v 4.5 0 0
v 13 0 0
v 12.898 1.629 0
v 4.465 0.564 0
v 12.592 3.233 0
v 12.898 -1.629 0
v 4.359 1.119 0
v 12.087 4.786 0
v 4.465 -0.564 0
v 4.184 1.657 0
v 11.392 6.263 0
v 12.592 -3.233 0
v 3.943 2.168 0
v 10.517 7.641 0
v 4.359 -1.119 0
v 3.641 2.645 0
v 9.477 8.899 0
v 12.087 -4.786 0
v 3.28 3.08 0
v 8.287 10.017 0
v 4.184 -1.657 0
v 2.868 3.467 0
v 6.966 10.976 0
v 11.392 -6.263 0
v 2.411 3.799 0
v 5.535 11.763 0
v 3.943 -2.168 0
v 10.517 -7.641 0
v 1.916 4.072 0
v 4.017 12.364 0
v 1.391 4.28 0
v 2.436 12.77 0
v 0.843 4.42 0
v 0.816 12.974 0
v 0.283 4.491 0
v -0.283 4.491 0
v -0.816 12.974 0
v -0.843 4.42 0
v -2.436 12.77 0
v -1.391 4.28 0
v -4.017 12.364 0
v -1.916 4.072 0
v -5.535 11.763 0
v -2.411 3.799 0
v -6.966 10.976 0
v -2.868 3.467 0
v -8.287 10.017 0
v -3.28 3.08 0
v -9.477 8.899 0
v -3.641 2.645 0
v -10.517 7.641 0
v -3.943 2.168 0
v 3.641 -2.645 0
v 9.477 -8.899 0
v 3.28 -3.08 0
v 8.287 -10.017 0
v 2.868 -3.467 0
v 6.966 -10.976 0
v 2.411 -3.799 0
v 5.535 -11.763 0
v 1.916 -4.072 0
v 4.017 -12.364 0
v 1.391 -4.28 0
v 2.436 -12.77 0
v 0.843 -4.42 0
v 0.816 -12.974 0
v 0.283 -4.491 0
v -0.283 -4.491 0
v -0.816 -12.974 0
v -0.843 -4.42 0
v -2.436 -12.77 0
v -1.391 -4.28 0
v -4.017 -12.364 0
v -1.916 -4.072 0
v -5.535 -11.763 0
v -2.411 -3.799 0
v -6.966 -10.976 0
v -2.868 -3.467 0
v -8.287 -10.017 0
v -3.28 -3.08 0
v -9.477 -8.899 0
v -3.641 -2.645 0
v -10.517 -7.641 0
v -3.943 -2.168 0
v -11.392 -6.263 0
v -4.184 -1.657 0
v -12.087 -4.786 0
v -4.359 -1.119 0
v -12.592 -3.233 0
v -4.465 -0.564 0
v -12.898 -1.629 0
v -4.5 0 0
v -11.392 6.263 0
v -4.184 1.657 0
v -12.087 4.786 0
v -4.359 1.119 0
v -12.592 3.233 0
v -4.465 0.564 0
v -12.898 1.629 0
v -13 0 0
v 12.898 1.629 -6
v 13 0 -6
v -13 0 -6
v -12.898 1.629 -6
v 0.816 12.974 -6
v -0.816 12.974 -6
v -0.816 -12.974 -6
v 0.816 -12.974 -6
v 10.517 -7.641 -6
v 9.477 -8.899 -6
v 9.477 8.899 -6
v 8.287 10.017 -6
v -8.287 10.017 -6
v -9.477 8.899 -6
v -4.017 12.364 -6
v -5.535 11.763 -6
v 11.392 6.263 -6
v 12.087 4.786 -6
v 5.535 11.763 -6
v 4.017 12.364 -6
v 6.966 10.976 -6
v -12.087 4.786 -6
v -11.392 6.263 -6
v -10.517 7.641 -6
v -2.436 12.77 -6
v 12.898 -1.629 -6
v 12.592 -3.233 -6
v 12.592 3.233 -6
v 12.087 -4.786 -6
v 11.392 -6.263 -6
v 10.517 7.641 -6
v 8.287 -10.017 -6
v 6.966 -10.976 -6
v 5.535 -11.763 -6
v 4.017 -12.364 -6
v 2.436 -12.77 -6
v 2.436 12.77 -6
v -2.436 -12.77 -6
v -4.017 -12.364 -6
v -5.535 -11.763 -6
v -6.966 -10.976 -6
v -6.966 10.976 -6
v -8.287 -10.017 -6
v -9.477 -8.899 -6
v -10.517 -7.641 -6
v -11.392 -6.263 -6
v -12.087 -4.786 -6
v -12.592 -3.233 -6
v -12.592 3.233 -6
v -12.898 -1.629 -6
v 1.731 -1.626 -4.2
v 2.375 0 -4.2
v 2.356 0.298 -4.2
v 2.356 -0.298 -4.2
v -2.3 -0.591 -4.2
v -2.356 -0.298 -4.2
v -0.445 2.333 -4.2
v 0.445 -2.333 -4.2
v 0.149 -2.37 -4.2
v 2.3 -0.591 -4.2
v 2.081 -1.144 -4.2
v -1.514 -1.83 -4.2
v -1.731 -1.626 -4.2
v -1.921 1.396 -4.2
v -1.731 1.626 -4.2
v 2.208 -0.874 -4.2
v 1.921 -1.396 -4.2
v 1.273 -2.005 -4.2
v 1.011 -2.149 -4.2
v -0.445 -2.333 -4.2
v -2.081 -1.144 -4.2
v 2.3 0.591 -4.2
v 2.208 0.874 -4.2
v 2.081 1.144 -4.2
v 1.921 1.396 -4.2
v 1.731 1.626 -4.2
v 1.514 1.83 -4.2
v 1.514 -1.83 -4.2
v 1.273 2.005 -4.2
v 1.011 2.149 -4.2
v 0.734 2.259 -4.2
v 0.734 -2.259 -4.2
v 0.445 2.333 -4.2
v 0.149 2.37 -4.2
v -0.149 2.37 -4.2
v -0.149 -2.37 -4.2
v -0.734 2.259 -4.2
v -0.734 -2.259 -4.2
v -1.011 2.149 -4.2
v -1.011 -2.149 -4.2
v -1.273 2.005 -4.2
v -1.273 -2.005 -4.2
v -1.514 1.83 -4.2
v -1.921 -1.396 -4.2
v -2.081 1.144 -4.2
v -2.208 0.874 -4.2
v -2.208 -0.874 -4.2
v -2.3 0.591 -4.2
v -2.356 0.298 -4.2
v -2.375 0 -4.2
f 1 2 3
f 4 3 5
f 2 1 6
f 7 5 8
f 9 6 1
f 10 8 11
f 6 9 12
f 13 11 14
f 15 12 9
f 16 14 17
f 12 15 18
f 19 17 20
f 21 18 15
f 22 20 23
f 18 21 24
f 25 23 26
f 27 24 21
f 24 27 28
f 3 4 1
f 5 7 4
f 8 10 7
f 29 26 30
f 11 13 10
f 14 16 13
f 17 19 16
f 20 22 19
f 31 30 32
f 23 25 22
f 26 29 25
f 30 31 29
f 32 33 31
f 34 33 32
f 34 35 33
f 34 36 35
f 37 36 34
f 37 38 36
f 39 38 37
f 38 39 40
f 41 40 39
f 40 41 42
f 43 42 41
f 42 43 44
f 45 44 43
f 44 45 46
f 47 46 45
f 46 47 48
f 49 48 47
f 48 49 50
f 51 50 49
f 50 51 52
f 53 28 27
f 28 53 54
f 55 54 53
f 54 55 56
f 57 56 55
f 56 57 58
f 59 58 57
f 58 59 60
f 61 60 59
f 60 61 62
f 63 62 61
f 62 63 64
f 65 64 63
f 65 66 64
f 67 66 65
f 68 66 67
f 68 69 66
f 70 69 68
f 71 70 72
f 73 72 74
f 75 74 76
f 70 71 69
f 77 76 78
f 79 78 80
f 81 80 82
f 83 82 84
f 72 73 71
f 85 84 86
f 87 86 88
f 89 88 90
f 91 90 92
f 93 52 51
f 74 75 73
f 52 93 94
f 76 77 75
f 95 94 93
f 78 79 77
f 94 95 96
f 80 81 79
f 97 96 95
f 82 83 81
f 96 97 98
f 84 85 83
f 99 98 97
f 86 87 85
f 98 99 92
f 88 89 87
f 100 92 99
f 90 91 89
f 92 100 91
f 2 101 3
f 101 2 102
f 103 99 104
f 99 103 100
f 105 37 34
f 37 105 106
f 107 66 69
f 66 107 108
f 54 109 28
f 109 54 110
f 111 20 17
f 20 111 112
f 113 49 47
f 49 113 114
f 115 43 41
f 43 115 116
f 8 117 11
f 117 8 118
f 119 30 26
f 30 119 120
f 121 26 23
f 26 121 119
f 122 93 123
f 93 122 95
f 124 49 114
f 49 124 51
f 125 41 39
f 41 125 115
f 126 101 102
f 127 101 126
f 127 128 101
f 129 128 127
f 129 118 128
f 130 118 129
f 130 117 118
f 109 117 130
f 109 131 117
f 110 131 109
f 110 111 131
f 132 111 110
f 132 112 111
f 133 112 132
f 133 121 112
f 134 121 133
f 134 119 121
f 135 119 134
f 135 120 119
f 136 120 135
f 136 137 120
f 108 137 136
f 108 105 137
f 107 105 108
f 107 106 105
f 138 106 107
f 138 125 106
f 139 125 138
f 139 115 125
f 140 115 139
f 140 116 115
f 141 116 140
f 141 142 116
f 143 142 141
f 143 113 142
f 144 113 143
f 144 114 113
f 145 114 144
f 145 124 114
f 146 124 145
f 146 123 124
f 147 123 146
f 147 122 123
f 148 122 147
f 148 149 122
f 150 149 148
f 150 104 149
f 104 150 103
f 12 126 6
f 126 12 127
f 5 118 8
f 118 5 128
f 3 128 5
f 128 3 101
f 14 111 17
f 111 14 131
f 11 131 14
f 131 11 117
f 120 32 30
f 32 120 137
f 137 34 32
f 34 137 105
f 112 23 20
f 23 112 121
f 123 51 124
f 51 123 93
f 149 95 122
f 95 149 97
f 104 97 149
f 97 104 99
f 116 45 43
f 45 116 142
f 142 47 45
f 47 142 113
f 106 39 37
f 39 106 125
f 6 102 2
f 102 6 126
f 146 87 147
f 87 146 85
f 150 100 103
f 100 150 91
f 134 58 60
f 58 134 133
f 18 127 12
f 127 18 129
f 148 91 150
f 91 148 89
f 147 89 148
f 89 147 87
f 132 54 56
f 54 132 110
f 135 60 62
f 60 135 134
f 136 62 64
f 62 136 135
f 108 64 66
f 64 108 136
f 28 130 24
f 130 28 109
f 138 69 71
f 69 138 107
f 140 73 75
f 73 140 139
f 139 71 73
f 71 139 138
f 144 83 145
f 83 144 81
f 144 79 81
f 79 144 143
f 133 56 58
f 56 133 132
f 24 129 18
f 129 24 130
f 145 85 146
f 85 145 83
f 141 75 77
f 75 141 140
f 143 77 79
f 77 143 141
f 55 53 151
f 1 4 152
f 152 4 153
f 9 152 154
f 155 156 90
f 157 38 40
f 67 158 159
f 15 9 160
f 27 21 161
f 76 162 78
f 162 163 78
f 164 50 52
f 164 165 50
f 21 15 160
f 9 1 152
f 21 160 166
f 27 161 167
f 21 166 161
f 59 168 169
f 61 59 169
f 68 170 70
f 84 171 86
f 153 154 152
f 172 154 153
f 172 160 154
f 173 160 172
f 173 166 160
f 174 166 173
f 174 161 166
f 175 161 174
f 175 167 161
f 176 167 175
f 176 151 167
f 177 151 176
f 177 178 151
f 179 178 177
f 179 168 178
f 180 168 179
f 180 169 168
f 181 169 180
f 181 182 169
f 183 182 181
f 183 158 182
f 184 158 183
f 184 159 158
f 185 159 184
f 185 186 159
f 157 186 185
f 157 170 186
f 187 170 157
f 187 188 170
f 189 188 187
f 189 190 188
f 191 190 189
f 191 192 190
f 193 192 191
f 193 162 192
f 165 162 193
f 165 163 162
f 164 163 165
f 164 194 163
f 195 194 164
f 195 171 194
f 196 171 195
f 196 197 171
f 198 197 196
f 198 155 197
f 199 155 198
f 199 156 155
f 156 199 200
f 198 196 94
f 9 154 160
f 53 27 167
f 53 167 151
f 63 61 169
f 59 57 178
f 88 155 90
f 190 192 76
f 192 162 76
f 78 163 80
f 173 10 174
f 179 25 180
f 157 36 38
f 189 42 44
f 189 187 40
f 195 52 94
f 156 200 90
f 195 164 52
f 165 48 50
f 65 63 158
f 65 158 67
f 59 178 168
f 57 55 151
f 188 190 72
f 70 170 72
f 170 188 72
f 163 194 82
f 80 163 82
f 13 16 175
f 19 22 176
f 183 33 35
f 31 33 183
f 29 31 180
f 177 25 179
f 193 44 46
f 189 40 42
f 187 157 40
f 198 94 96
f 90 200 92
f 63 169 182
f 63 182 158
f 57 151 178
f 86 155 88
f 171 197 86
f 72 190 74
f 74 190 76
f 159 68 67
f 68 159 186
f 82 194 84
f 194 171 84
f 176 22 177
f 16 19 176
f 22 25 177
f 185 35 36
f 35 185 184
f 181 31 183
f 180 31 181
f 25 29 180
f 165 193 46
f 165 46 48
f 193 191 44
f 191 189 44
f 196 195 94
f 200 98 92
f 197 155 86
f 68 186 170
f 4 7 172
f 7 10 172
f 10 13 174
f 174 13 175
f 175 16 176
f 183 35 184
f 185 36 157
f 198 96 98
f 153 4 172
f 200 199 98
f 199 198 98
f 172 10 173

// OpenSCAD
$fn = 50;


difference() {
	union() {
		translate(v = [0, 0, -3.0000000000]) {
			cylinder(h = 3, r = 7.0000000000);
		}
		translate(v = [0, 0, -6.0000000000]) {
			cylinder(h = 6, r = 13.0000000000);
		}
	}
	union() {
		translate(v = [0, 0, 0]) {
			rotate(a = [0, 0, 0]) {
				difference() {
					union() {
						#translate(v = [0, 0, -3.0000000000]) {
							cylinder(h = 3, r = 2.2500000000);
						}
						#translate(v = [0, 0, -4.2000000000]) {
							cylinder(h = 4.2000000000, r1 = 2.3750000000, r2 = 4.5000000000);
						}
						#translate(v = [0, 0, -3.0000000000]) {
							cylinder(h = 3, r = 2.3750000000);
						}
						#translate(v = [0, 0, -3.0000000000]) {
							cylinder(h = 3, r = 2.2500000000);
						}
					}
					union();
				}
			}
		}
	}
}
